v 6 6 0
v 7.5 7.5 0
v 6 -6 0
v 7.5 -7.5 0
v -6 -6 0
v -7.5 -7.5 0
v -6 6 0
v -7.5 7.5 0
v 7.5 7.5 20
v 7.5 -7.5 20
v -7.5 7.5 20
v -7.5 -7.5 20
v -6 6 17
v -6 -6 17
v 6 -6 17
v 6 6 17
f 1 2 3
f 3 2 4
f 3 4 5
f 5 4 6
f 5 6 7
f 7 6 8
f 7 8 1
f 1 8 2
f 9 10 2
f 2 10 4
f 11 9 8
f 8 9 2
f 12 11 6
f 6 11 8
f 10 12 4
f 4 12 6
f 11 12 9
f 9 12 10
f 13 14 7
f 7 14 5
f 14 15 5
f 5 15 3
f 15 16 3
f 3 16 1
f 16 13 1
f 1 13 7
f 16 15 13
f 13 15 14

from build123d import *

# Parameters (mm, degrees)
SKETCH_1_W               = 15
SKETCH_1_H               = 15
EXTRUDE_1_DEPTH          = 20
SKETCH_2_W               = 12
SKETCH_2_H               = 12
CUT_EXTRUDE_1_DEPTH      = 17
CUT_EXTRUDE_1_DEPTH_BACK = 0.001


with BuildPart() as part:
    # 草图1 → 凸台-拉伸1 (new body)
    with BuildSketch(Plane.XY):
        Rectangle(SKETCH_1_W, SKETCH_1_H)
    extrude(amount=EXTRUDE_1_DEPTH)

    # 草图2 → 切除-拉伸1 (cut, two sides)
    with BuildSketch(Plane.XY) as cut_extrude_1_sk:
        Rectangle(SKETCH_2_W, SKETCH_2_H)
    extrude(amount=CUT_EXTRUDE_1_DEPTH, mode=Mode.SUBTRACT)
    extrude(cut_extrude_1_sk.sketch, amount=-CUT_EXTRUDE_1_DEPTH_BACK, mode=Mode.SUBTRACT)


solid = part.part
